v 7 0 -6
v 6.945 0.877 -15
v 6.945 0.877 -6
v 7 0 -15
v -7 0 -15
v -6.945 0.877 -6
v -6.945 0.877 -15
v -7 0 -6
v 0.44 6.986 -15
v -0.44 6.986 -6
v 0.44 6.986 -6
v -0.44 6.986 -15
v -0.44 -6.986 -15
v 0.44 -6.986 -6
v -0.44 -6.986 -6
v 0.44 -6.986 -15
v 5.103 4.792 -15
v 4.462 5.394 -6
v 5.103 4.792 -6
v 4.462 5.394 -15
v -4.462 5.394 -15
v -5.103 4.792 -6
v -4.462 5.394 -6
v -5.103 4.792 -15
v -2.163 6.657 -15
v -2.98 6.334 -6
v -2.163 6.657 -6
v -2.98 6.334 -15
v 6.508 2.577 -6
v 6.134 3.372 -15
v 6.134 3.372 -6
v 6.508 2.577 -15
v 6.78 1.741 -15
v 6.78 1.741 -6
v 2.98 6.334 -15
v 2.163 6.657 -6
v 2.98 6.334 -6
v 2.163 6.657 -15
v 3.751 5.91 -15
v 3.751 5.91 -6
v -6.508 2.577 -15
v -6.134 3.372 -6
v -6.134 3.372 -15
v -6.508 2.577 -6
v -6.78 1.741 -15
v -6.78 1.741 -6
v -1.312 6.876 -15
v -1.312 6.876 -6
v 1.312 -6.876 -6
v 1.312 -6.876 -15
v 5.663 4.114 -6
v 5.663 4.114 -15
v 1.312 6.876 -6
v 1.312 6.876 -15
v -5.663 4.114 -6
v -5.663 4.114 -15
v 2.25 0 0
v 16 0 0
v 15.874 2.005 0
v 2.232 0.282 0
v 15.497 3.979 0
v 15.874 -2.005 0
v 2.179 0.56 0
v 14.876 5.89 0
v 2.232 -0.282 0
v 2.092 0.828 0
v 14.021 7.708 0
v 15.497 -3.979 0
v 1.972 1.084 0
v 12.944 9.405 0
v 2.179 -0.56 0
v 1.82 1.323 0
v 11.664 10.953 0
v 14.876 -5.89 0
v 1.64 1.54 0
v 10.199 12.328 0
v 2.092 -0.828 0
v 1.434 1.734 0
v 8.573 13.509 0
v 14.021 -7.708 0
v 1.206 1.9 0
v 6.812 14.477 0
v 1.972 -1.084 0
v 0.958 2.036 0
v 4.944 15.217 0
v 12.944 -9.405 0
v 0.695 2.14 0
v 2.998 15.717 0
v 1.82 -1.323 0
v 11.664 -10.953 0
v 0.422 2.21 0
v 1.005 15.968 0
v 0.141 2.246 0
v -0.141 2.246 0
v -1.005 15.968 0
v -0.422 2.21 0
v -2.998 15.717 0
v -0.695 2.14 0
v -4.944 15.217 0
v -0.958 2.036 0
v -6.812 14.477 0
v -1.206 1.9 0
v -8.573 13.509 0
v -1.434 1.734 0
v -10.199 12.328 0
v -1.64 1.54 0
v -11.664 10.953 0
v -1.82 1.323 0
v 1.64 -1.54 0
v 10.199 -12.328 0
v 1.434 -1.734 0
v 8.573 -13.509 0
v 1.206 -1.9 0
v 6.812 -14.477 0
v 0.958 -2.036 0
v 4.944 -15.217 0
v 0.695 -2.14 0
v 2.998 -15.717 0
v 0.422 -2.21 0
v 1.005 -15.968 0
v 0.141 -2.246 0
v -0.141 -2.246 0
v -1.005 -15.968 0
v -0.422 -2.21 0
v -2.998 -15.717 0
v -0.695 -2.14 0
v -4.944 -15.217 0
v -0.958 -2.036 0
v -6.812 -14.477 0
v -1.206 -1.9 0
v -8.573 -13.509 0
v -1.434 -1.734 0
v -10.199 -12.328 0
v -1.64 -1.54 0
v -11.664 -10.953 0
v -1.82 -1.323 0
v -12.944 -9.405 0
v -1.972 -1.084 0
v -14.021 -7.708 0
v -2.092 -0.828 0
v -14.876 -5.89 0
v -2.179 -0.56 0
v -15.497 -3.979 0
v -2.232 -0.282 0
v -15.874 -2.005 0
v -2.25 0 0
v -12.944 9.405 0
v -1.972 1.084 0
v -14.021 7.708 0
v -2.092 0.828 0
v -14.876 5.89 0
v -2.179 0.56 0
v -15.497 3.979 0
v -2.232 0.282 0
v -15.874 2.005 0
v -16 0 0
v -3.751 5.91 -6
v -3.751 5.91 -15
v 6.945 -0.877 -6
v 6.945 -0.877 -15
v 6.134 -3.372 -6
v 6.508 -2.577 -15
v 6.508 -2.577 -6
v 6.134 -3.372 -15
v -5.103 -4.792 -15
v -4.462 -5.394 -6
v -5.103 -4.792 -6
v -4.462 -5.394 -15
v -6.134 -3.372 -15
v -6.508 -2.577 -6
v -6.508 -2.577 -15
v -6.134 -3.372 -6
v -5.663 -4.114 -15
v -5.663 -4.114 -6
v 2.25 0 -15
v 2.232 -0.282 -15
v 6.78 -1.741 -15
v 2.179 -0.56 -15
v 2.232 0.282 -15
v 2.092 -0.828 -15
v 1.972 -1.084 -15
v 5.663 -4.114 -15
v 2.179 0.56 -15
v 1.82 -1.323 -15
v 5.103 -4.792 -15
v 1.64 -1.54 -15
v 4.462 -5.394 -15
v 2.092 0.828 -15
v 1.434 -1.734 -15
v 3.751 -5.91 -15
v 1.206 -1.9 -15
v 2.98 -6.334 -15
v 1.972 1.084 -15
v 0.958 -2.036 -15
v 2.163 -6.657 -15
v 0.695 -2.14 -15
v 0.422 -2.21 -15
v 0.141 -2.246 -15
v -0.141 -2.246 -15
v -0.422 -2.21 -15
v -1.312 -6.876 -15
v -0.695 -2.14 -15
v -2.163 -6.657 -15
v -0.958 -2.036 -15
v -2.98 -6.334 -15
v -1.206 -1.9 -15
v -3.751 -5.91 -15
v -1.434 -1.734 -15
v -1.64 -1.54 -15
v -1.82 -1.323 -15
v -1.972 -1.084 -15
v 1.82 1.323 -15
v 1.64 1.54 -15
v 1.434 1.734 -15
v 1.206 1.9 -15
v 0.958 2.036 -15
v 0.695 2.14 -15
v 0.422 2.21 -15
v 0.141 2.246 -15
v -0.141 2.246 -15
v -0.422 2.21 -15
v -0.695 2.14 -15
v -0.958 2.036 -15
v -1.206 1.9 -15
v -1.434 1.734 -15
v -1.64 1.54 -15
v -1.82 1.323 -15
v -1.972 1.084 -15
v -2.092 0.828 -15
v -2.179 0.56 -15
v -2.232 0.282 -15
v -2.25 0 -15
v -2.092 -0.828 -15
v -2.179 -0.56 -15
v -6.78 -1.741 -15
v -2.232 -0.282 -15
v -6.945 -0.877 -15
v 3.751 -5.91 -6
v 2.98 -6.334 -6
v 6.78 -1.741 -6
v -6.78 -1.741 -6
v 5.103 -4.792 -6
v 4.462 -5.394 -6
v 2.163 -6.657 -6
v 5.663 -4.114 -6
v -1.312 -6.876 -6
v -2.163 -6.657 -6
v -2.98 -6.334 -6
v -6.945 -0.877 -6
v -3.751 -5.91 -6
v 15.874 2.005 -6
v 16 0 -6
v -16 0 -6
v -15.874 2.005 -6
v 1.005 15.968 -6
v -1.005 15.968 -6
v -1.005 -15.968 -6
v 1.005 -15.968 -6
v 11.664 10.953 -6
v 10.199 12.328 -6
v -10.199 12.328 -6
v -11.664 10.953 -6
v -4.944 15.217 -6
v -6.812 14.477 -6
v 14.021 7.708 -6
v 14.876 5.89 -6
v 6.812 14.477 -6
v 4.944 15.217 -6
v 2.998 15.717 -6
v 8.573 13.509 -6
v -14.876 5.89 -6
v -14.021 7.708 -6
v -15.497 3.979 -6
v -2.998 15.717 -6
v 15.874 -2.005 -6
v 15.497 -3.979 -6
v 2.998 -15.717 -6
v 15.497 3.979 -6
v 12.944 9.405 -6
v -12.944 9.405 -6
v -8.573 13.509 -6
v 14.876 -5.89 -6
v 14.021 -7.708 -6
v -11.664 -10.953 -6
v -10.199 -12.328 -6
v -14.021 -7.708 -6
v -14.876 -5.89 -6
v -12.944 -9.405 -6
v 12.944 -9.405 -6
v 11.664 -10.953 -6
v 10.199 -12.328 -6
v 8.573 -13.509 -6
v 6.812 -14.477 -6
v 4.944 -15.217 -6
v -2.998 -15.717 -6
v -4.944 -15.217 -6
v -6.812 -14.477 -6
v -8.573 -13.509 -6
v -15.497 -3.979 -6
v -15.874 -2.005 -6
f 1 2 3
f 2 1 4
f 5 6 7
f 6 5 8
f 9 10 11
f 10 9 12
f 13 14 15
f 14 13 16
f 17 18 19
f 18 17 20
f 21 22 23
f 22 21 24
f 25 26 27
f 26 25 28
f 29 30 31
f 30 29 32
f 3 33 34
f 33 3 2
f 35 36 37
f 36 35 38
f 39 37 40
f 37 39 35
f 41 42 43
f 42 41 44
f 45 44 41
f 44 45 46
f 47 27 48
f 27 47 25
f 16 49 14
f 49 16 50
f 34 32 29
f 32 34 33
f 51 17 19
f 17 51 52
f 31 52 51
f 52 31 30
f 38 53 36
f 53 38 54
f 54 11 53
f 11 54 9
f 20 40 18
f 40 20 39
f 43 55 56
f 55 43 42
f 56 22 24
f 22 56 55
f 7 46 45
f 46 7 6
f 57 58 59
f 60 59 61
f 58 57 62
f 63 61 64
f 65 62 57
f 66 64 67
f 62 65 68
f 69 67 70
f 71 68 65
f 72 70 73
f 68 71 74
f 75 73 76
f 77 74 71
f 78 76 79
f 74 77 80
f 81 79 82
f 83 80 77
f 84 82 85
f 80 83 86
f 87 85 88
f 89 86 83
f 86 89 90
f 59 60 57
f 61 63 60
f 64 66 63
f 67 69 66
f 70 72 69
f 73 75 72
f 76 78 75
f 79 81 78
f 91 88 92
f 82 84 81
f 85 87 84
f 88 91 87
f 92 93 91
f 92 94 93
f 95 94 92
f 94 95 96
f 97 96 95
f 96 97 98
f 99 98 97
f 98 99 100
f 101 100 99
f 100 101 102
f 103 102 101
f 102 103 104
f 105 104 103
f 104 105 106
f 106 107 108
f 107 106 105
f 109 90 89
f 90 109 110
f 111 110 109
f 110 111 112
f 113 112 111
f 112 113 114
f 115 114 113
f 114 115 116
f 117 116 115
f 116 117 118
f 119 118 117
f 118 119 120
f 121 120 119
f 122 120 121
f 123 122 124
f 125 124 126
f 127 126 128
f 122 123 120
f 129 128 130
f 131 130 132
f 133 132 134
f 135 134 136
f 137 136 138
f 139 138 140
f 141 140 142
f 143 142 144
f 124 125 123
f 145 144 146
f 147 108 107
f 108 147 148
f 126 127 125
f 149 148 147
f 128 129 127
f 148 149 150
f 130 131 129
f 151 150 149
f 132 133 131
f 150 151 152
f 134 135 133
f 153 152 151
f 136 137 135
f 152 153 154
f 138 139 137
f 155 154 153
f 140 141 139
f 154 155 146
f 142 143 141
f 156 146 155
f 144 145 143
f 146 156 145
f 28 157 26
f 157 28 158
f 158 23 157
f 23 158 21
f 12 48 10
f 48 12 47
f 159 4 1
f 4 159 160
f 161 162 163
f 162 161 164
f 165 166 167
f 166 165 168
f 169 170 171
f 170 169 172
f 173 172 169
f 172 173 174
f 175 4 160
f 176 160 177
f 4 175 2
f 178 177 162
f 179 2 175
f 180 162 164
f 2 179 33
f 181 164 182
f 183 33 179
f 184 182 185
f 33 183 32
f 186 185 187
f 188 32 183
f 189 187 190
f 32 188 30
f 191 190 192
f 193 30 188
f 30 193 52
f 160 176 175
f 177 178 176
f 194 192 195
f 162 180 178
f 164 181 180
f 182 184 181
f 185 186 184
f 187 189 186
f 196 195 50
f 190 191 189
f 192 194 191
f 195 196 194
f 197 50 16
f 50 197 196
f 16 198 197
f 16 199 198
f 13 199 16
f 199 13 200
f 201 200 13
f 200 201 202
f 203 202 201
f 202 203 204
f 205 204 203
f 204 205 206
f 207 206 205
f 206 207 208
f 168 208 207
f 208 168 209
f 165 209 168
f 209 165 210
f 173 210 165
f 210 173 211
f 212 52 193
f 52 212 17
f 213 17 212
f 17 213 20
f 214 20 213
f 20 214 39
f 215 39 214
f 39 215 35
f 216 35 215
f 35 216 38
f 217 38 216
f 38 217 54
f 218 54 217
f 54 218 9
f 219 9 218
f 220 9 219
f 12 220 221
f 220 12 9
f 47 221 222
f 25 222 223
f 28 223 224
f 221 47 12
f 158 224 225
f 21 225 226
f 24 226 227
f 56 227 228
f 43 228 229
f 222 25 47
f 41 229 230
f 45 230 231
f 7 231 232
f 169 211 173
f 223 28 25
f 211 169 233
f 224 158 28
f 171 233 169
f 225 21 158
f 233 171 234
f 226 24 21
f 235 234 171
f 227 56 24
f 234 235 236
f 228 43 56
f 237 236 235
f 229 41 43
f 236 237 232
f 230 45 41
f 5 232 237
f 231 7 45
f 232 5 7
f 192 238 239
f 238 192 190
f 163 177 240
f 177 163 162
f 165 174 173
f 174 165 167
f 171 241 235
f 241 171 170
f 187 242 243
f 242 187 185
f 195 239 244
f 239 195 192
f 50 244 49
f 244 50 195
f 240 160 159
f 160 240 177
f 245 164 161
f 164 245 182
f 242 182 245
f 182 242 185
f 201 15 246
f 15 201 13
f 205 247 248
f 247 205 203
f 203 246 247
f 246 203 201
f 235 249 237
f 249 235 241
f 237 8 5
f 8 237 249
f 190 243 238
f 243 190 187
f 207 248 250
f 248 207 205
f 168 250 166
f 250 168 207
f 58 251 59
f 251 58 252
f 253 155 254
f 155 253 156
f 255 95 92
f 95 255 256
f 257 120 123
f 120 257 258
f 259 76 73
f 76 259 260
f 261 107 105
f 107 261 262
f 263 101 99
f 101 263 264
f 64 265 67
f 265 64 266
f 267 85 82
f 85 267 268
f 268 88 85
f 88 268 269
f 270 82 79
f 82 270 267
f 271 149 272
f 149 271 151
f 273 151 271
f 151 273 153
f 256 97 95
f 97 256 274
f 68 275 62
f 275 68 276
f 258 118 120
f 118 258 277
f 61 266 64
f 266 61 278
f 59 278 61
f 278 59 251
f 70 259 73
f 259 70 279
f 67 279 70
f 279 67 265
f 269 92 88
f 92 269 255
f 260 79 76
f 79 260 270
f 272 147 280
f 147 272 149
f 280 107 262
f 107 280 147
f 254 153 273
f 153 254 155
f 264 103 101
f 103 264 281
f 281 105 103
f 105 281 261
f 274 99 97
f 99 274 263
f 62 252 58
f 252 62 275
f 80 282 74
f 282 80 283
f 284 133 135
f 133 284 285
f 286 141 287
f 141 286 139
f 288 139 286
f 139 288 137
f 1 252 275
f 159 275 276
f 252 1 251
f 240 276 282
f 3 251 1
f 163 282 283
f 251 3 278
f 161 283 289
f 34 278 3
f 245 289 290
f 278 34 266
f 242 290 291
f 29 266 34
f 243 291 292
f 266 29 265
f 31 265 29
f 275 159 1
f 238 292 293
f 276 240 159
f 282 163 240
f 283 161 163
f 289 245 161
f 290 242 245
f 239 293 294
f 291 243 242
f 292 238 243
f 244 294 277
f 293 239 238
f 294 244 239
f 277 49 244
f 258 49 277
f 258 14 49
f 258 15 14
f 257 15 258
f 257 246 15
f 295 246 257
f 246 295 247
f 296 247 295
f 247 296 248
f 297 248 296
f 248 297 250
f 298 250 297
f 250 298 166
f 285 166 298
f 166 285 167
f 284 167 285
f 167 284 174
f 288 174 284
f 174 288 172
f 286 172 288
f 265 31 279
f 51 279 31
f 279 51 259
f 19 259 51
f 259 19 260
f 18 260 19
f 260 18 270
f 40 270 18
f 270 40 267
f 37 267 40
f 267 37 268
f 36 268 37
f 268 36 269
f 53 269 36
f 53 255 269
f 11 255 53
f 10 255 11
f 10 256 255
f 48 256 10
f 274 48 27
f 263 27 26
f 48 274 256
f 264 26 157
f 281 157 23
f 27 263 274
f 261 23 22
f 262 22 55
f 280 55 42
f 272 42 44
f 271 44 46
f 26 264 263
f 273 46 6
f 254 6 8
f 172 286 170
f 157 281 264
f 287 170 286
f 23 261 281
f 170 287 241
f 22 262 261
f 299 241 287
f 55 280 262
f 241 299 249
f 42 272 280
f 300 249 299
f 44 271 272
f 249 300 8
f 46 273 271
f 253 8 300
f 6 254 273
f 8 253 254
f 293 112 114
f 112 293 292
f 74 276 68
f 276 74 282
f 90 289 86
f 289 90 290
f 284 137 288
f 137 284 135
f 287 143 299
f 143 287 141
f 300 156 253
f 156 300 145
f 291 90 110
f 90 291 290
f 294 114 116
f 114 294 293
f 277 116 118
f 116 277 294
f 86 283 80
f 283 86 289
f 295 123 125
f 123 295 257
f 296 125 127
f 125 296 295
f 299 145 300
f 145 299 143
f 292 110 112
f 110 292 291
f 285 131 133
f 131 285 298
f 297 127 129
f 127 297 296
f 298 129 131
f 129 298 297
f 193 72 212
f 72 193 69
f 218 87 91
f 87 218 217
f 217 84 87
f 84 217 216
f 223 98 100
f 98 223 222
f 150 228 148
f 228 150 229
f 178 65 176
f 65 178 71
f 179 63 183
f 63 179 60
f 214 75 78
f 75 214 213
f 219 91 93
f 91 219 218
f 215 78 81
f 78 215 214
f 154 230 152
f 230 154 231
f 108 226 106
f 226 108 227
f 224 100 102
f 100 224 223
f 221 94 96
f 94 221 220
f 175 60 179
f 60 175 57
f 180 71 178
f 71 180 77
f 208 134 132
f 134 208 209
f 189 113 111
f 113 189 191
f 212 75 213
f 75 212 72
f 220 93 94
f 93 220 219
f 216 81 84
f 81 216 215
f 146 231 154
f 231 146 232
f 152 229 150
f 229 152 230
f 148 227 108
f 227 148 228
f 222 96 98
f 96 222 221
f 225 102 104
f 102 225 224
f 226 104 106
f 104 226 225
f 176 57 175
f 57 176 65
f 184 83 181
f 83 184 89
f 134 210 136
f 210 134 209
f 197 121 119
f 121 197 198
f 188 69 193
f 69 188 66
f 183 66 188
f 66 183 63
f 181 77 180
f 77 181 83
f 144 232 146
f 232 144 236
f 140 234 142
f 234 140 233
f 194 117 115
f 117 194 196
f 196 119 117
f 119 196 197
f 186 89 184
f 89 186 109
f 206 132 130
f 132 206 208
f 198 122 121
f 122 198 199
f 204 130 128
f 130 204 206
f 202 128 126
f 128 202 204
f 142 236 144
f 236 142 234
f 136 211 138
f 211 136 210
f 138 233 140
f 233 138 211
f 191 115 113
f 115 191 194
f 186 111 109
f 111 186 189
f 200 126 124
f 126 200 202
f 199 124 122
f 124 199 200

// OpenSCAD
$fn = 50;


difference() {
	union() {
		translate(v = [0, 0, -15.0000000000]) {
			cylinder(h = 15, r = 7.0000000000);
		}
		translate(v = [0, 0, -6.0000000000]) {
			cylinder(h = 6, r = 16.0000000000);
		}
	}
	union() {
		#translate(v = [0, 0, -15]) {
			cylinder(h = 15, r = 2.2500000000);
		}
	}
}
